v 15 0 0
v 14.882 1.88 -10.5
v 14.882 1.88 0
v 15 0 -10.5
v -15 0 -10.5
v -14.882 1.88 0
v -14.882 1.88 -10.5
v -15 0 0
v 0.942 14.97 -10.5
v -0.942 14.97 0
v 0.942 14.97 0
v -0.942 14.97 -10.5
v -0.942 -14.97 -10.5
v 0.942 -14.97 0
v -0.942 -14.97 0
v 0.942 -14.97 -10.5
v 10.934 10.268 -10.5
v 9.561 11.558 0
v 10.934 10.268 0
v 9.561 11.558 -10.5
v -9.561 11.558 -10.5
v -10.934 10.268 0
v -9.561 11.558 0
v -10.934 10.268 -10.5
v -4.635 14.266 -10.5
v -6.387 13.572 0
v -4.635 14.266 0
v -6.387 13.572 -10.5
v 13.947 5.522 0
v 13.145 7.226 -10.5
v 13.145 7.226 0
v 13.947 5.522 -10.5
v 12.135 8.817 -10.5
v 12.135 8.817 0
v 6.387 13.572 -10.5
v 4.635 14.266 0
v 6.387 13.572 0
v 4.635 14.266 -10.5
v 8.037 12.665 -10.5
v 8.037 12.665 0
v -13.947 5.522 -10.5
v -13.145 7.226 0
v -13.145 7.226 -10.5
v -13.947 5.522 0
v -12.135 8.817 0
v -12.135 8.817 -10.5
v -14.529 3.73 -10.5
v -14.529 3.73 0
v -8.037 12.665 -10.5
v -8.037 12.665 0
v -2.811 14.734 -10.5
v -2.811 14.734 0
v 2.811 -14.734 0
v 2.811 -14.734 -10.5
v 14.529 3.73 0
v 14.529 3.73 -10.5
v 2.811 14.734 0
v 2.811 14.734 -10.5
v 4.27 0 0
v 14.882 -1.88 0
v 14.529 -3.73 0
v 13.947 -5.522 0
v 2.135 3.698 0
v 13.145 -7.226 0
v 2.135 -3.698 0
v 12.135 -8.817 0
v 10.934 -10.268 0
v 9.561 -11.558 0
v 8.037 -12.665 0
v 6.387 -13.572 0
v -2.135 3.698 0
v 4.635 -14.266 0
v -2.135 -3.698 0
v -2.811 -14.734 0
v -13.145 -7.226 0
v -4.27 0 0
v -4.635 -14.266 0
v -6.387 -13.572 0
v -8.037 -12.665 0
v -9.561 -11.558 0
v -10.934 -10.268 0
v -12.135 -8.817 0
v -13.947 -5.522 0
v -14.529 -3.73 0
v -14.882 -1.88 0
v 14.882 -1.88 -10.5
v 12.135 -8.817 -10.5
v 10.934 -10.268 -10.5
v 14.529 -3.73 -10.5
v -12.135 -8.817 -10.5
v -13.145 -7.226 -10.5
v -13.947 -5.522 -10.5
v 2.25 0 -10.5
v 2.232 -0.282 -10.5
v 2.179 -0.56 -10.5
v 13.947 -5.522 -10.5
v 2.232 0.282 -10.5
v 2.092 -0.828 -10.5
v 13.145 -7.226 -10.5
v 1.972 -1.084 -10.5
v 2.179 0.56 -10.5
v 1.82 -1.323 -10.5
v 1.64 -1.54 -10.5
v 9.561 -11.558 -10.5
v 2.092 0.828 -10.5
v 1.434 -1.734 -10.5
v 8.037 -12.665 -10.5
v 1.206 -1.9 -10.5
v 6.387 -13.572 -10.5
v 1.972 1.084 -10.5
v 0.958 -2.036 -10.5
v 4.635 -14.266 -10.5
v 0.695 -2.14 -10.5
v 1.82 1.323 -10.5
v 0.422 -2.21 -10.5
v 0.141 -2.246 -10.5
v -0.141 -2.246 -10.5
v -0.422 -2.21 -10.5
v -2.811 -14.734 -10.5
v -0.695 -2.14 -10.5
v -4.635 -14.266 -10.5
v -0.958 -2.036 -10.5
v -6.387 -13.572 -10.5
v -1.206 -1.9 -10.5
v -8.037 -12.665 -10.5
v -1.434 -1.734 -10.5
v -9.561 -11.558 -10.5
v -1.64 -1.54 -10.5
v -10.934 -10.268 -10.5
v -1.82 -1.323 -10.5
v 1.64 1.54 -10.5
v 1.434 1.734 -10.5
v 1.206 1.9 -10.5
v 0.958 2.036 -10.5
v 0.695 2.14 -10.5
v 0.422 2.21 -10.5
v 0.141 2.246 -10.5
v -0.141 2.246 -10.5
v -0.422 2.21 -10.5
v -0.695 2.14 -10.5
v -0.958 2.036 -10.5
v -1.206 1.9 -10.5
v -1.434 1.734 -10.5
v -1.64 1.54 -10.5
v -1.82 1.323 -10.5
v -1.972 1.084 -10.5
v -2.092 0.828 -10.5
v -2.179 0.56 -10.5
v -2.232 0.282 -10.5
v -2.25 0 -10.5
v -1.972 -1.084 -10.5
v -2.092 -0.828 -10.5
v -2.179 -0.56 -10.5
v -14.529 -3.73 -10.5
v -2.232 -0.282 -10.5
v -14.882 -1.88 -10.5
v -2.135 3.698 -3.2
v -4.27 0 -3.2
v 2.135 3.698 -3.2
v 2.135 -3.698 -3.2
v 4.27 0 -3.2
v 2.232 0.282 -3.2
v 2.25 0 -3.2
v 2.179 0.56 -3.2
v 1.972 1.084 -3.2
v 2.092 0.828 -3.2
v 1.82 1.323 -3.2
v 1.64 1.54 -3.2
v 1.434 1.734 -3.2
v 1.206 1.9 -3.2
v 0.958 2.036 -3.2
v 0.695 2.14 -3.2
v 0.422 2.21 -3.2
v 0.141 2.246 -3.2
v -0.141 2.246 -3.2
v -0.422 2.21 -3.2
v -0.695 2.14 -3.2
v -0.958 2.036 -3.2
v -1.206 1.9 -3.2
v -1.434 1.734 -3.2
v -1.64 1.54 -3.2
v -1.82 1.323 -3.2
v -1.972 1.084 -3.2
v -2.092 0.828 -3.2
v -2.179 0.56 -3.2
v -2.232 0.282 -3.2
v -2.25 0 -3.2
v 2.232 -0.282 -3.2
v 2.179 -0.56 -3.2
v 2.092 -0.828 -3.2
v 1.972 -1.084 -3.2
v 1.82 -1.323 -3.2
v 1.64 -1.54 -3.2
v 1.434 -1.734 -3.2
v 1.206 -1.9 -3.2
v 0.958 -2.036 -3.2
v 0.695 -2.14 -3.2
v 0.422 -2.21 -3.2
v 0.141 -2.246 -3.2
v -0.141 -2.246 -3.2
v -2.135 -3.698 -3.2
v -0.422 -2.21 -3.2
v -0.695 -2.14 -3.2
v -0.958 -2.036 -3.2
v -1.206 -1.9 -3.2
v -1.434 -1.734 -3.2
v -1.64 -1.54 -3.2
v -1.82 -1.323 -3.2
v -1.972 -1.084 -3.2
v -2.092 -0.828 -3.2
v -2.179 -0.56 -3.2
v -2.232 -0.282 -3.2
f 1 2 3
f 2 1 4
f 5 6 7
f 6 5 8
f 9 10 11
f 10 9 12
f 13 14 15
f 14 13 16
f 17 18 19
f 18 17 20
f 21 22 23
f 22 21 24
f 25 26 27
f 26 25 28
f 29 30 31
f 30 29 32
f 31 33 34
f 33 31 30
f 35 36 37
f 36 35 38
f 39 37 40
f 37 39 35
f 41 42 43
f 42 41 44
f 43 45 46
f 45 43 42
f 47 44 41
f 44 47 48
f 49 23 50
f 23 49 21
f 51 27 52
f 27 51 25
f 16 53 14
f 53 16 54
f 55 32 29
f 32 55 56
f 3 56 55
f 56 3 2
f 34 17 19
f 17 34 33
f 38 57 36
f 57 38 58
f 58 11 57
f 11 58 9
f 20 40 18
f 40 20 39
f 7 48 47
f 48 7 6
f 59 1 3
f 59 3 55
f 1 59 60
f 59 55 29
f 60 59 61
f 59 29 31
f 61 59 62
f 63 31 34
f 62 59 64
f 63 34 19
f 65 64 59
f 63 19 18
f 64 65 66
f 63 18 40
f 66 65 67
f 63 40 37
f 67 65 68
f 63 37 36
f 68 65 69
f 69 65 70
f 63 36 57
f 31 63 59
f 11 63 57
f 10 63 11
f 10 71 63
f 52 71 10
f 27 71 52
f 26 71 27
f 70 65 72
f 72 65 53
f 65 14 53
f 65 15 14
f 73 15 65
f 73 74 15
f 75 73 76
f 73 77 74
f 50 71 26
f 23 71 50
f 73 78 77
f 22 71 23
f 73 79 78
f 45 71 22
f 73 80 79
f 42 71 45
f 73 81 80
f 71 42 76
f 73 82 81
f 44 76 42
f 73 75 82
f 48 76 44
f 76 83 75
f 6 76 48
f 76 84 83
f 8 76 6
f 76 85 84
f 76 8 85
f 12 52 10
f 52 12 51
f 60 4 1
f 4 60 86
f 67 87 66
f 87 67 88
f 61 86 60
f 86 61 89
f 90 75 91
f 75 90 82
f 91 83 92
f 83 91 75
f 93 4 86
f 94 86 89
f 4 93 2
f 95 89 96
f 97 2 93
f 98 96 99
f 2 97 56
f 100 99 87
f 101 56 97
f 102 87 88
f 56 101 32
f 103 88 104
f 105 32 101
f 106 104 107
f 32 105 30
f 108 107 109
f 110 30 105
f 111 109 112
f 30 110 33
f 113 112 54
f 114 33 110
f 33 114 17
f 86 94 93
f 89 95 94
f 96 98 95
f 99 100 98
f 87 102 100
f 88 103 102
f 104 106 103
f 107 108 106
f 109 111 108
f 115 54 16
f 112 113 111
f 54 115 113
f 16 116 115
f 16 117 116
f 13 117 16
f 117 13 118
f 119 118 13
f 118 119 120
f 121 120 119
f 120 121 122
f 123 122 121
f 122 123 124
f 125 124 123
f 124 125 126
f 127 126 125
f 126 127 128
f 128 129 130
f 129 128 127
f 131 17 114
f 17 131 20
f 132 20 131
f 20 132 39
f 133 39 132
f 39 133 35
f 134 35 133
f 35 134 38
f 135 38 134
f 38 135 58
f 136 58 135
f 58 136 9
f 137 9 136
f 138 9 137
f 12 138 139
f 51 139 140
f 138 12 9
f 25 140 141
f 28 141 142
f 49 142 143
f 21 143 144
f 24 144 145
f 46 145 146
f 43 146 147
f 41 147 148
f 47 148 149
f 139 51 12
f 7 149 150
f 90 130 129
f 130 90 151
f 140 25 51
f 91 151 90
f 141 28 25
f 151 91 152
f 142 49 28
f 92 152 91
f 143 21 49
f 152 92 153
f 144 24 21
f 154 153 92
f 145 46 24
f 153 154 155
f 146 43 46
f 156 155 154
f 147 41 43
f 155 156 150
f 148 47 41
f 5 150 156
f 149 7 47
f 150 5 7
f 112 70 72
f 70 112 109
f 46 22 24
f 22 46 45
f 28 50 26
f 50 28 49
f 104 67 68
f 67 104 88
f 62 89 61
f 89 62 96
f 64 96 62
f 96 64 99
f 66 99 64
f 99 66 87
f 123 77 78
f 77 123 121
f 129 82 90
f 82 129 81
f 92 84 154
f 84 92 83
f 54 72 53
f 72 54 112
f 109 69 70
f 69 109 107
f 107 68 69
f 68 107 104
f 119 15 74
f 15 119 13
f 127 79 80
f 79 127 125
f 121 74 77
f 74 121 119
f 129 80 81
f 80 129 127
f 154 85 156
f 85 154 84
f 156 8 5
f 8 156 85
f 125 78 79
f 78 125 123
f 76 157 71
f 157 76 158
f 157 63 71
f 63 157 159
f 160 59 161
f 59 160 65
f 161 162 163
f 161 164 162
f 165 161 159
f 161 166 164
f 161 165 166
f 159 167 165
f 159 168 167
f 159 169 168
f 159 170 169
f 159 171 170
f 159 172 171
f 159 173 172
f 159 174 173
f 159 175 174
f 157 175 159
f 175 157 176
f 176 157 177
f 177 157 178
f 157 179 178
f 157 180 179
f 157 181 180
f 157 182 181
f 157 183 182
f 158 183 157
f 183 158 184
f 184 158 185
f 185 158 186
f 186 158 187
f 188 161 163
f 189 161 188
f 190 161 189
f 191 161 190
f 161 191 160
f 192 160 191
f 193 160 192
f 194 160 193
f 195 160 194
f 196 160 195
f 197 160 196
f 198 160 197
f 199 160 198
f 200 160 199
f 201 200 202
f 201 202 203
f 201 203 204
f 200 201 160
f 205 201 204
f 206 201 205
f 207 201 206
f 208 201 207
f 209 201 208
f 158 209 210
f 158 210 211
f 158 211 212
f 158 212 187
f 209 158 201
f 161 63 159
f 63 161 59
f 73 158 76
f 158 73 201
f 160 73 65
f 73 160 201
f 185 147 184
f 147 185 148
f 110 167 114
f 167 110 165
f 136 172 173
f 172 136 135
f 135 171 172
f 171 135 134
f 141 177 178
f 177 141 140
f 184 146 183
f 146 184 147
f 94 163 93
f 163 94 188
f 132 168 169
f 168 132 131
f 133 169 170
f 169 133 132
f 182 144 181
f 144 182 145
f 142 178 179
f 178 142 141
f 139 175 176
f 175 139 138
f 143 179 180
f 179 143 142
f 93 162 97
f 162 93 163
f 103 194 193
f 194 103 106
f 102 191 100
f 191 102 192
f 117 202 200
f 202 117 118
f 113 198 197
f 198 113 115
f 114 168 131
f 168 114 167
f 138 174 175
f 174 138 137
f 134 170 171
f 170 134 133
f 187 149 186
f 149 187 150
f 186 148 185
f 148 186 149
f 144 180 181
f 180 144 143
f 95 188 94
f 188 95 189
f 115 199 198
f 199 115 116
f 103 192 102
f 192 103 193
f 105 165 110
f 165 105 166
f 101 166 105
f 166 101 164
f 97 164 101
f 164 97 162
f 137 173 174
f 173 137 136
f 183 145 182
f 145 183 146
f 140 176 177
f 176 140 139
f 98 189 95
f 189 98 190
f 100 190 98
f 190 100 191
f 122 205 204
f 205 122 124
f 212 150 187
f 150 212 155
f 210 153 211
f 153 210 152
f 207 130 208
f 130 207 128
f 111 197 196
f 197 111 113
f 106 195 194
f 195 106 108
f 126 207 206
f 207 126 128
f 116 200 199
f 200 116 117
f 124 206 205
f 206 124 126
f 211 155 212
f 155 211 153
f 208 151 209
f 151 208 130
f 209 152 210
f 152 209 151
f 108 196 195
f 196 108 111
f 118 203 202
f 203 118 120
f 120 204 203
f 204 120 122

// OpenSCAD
$fn = 50;


difference() {
	union() {
		translate(v = [0, 0, -10.5000000000]) {
			cylinder(h = 10.5000000000, r = 15.0000000000);
		}
		translate(v = [0, 0, -9.0000000000]) {
			cylinder(h = 9, r = 2.8750000000);
		}
	}
	union() {
		translate(v = [0, 0, 0]) {
			rotate(a = [0, 0, 0]) {
				difference() {
					union() {
						translate(v = [0, 0, -3.2000000000]) {
							#linear_extrude(height = 3.2000000000) {
								polygon(points = [[4.2698000000, 0.0000000000], [2.1349000000, 3.6977552691], [-2.1349000000, 3.6977552691], [-4.2698000000, 0.0000000000], [-2.1349000000, -3.6977552691], [2.1349000000, -3.6977552691]]);
							}
						}
					}
					union();
				}
			}
		}
		#translate(v = [0, 0, -100.0000000000]) {
			cylinder(h = 200, r = 2.2500000000);
		}
	}
}
